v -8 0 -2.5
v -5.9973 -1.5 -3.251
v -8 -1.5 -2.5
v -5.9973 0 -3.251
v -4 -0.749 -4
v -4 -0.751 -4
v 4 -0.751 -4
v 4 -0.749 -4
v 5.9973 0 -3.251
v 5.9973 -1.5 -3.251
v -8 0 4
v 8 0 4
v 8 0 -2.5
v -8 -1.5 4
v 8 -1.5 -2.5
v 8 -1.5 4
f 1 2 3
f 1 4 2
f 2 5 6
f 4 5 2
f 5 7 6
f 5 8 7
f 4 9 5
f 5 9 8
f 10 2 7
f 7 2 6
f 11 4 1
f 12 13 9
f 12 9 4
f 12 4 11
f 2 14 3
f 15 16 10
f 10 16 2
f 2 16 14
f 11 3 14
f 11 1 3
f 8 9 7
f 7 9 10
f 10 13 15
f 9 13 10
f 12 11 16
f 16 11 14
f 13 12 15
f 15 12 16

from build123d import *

# Parameters (mm, degrees)
PAD_DEPTH    = 1.5
CHAMFER_SIZE = 0.749


with BuildPart() as part:
    # Sketch → Pad (new body)
    with BuildSketch(Plane.XZ):
        Polygon((-8, 4), (-8, -2.5), (-4, -4), (4, -4), (8, -2.5), (8, 4), align=None)
    extrude(amount=PAD_DEPTH)

    # Chamfer
    chamfer_edges = [part.edges().sort_by_distance(p)[0] for p in [
        (0, -1.5, -4),
        (0, 0, -4),
    ]]
    chamfer(chamfer_edges, length=CHAMFER_SIZE)


solid = part.part
